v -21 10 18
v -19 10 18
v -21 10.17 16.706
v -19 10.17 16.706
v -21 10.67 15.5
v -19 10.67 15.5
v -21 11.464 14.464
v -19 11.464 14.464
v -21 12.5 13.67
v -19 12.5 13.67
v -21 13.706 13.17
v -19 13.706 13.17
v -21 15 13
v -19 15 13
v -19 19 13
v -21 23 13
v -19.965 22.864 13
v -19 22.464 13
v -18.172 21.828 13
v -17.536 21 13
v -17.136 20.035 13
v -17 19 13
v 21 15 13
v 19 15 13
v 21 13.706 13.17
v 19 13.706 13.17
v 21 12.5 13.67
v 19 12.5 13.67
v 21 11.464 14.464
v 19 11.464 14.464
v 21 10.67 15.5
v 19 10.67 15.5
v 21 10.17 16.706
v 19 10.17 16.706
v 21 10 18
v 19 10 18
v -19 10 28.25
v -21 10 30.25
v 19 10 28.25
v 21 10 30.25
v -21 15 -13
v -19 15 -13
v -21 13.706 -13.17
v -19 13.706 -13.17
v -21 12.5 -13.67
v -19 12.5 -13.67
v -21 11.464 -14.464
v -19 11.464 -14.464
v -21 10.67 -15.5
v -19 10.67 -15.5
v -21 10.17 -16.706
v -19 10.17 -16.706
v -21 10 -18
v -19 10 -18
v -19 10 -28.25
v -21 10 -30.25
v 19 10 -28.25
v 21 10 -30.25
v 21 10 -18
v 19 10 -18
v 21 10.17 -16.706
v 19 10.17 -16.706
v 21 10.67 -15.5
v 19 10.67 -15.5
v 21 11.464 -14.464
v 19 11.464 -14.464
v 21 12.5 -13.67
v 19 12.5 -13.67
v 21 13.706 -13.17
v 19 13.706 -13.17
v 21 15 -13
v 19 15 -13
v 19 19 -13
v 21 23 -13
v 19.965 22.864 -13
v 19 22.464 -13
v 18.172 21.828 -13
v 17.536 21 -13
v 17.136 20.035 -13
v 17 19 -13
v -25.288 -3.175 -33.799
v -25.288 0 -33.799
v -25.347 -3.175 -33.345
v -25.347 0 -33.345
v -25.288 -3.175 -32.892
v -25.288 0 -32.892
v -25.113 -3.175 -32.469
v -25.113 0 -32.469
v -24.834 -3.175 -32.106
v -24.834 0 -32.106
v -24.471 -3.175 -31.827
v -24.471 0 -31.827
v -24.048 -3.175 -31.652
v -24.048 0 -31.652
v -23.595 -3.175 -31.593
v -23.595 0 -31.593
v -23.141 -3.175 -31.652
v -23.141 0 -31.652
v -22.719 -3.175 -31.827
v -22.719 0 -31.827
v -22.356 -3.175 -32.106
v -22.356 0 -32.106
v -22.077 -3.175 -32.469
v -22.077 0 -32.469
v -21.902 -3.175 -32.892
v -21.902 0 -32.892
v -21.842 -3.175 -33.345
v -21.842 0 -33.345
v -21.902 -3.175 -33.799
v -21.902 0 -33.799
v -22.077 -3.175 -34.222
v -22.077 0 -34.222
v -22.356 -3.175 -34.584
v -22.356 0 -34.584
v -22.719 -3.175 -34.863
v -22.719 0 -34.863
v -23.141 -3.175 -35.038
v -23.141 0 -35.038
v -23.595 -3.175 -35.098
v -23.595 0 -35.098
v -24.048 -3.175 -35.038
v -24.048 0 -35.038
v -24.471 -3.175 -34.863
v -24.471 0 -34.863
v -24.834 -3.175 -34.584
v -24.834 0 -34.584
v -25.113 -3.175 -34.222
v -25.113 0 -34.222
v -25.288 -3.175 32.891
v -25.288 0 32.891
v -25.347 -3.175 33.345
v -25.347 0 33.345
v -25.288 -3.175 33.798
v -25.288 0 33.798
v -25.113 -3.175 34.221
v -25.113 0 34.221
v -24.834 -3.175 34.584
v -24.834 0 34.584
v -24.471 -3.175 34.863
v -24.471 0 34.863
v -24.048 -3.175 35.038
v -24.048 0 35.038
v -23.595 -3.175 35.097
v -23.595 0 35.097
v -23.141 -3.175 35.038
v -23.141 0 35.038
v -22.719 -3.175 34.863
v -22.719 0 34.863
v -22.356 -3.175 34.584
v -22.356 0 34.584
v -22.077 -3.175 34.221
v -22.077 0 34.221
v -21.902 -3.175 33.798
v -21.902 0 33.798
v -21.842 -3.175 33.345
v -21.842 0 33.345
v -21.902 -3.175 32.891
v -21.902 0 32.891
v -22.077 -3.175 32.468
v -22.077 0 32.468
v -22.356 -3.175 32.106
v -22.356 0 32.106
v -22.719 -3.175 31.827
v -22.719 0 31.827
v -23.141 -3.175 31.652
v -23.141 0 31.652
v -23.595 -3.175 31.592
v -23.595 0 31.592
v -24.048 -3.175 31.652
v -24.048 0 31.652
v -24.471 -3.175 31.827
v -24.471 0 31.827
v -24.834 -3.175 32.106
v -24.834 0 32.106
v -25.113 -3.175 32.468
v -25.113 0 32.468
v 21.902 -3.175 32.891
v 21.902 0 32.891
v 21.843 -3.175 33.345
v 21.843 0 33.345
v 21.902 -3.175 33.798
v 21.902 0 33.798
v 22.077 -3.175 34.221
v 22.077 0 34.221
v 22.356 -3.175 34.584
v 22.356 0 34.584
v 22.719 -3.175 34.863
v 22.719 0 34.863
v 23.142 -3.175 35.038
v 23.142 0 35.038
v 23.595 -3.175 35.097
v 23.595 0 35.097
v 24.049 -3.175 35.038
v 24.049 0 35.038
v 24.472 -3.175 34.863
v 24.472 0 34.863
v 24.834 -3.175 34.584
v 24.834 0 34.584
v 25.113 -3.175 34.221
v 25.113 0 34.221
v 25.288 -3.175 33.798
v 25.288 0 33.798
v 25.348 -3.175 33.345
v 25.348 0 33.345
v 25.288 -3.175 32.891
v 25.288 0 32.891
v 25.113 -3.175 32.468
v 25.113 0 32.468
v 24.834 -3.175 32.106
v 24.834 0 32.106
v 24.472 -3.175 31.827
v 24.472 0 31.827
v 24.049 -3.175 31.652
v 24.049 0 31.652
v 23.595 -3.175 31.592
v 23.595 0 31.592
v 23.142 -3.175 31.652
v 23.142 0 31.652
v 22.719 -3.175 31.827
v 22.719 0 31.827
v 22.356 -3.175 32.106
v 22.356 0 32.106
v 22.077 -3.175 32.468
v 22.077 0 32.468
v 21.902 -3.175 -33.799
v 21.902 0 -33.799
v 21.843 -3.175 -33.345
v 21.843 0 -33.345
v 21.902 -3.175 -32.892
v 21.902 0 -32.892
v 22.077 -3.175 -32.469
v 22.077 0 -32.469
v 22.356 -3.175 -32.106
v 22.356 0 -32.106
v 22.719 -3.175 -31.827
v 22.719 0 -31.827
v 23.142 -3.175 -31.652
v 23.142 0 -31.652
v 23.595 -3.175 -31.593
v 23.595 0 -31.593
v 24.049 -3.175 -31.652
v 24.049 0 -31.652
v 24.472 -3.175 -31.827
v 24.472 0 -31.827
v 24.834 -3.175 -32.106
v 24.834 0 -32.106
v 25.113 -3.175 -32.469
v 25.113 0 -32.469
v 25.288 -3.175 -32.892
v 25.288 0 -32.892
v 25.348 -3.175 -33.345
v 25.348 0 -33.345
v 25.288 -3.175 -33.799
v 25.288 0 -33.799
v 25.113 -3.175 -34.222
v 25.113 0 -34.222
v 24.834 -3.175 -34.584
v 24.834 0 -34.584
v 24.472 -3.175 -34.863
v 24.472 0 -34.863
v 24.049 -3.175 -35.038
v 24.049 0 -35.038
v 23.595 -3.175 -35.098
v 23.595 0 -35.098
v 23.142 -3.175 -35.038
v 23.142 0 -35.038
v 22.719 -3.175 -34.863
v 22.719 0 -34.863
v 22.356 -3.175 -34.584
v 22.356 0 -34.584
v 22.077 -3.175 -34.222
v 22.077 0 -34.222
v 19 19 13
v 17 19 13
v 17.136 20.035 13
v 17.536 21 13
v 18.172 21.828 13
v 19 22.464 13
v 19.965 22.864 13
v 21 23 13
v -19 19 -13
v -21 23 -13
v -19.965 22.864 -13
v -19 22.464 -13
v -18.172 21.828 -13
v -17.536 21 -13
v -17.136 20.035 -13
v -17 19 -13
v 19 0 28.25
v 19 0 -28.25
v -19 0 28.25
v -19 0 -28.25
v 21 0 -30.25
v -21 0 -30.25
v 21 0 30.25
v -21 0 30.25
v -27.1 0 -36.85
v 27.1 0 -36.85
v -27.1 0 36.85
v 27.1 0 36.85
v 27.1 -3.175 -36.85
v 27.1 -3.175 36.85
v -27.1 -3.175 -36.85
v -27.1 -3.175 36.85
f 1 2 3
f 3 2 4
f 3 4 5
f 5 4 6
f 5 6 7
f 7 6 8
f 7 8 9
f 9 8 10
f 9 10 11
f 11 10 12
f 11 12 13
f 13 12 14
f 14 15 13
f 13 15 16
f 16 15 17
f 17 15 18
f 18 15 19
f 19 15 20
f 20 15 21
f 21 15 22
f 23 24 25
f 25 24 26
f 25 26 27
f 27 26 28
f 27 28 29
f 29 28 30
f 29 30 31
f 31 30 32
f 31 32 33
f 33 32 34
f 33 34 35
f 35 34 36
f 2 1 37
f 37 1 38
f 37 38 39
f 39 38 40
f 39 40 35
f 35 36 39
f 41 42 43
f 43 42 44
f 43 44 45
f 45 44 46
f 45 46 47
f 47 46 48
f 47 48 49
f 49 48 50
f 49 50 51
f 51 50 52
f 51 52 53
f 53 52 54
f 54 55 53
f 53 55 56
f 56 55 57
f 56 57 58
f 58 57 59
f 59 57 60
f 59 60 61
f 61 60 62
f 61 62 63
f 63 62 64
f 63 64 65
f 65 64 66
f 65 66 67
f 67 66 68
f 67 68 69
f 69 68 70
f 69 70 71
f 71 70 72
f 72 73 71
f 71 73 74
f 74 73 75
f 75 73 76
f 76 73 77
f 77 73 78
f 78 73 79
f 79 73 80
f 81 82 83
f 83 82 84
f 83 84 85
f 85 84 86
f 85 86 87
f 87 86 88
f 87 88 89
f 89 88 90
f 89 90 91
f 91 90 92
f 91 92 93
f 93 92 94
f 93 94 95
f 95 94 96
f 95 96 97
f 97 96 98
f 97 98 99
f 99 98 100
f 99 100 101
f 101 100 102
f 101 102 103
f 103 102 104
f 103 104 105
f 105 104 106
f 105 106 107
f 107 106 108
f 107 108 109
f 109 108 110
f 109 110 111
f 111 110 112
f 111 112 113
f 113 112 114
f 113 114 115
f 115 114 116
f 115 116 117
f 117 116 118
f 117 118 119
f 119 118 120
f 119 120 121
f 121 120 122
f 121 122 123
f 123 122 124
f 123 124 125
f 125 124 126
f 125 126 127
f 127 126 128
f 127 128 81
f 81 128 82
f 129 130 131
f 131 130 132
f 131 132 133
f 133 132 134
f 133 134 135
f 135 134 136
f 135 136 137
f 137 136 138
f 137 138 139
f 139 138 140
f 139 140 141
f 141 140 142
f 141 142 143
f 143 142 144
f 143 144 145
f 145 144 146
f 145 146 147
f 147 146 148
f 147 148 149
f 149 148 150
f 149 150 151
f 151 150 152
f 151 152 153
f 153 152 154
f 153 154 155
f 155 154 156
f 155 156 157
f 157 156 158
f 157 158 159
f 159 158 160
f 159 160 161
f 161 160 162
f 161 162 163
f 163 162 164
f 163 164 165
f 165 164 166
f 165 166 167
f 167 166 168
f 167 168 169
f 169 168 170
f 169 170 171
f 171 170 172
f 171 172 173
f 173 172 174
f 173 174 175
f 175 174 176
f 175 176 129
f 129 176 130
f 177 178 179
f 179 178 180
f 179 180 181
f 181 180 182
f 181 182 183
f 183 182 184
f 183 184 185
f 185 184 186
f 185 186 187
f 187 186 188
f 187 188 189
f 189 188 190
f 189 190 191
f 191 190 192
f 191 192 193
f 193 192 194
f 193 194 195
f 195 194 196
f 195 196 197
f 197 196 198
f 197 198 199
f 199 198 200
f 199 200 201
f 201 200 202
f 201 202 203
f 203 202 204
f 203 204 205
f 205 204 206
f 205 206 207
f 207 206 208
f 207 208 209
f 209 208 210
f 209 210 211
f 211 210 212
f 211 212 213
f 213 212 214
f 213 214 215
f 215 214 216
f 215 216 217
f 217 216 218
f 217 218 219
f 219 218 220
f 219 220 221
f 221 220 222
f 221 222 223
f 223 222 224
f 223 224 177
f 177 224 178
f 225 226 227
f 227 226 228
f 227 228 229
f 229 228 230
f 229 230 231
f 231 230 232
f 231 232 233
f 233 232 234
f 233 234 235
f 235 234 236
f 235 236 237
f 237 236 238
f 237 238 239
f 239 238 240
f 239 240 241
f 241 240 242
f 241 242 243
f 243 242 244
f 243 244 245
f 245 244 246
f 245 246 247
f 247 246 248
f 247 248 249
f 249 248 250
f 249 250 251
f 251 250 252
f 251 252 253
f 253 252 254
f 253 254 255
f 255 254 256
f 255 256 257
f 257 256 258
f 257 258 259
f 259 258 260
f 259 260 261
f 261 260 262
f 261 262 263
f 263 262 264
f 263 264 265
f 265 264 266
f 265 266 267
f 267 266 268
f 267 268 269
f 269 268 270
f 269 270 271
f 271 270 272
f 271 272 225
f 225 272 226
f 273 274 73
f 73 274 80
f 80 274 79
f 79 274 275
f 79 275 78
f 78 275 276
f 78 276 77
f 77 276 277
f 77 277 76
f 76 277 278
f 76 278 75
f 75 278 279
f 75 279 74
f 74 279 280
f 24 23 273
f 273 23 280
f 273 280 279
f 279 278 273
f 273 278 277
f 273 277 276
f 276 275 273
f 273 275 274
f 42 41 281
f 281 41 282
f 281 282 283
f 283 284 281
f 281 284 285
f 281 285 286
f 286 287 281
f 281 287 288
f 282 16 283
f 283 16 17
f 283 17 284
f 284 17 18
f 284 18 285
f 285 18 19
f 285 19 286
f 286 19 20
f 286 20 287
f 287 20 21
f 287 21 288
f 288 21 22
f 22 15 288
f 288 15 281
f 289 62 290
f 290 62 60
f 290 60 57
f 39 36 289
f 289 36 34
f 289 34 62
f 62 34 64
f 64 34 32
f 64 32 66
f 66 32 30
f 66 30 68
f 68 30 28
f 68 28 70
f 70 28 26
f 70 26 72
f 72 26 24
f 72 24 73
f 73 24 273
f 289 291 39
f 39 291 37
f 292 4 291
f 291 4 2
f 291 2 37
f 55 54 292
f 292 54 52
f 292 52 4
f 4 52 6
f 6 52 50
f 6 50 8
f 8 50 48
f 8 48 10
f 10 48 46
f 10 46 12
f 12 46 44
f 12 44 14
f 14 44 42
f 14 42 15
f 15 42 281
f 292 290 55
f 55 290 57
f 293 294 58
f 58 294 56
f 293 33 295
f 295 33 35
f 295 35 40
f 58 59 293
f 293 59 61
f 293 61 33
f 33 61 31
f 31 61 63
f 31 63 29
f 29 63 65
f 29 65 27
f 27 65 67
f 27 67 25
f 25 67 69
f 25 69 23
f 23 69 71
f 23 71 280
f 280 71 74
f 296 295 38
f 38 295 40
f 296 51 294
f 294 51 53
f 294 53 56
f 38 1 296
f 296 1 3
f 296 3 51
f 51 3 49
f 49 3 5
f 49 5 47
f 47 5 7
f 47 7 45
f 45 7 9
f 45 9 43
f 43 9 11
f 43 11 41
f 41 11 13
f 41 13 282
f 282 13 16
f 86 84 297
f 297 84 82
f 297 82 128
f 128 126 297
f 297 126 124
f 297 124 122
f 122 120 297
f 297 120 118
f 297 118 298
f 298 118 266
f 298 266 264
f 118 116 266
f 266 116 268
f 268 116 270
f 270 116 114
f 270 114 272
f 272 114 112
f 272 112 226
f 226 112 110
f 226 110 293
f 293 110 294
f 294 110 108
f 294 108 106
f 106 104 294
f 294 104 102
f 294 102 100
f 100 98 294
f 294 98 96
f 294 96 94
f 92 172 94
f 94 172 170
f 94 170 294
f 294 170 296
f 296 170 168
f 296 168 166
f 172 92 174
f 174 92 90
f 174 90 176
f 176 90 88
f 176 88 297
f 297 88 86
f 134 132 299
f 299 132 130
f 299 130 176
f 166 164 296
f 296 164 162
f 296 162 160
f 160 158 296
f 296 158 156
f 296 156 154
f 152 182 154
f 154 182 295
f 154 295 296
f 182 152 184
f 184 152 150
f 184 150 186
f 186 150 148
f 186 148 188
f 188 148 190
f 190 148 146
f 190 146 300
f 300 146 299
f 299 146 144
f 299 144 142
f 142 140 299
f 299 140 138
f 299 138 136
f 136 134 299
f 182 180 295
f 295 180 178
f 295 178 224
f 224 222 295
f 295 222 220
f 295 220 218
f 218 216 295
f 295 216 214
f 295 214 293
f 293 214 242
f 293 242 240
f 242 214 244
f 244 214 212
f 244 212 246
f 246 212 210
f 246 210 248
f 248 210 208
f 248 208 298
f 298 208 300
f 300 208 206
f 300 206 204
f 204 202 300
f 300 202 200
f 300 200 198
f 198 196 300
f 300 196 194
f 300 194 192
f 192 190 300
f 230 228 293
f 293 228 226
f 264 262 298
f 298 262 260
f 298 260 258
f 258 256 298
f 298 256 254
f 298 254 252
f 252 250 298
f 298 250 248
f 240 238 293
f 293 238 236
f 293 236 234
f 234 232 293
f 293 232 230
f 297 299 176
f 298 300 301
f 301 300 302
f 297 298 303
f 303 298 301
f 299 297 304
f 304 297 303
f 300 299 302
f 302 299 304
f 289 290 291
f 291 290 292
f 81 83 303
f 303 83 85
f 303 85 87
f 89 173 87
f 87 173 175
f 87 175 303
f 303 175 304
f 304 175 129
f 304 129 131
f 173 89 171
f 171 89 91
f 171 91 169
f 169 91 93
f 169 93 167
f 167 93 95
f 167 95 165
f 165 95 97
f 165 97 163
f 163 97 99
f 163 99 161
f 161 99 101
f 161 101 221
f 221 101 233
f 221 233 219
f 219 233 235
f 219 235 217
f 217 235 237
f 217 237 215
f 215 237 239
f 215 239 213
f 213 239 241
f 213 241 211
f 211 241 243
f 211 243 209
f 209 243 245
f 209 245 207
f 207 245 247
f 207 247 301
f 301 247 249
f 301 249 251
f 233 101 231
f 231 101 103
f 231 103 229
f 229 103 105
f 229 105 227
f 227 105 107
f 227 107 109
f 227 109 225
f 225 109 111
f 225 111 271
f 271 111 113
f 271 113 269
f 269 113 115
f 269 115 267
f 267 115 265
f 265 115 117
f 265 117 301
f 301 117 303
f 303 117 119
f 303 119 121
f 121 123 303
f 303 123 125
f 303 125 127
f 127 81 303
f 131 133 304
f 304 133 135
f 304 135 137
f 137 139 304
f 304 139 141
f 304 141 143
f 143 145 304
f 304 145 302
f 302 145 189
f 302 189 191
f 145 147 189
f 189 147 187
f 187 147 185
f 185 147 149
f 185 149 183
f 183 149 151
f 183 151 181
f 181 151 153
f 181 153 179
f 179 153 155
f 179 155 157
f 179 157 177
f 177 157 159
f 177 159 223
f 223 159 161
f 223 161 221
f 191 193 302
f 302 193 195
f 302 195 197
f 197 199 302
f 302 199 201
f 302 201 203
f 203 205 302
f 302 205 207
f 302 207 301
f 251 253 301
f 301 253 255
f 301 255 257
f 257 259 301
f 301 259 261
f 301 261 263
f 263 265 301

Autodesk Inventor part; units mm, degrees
ref_plane "YZ Plane" through (0, 0, 0) normal (1, 0, 0) x (0, 1, 0)
ref_plane "XZ Plane" through (0, 0, 0) normal (0, 1, 0) x (-1, 0, 0)
ref_plane "XY Plane" through (0, 0, 0) normal (0, 0, 1) x (1, 0, 0)
sketch "Sketch1" plane through (0, 0, 0) normal (0, 1, 0) x (-1, 0, 0)
  line L0 (27.1, 36.85) -> (-27.1, 36.85)
  line L1 (-27.1, 36.85) -> (-27.1, -36.85)
  line L2 (-27.1, -36.85) -> (27.1, -36.85)
  line L3 (27.1, -36.85) -> (27.1, 36.85)
  line L4 (37.94, 0) -> (-37.94, 0) projected
  line L5 (0, -51.59) -> (0, 51.59) projected
  circle A0 centre (23.5948, 33.3448) radius 1.7526
  circle A1 centre (-23.5952, 33.3448) radius 1.7526
  circle A2 centre (23.5948, -33.3452) radius 1.7526
  circle A3 centre (-23.5952, -33.3452) radius 1.7526
  point P0 (0, 0)
  dimension "d0" = 54.2
  dimension "d1" = 73.7
  dimension "d16" = 3.5052
  dimension "d17" = 3.5052
  dimension "d18" = 3.5052
  dimension "d21" = 47.19
  dimension "d24" = 66.69
extrude "baseplate" add sketch "Sketch1" against normal blind 3.175 contours L3 L4 L5 L0 | L5 L4 L1 L0 | L3 L2 L5 L4 | L5 L2 L1 L4 | A0 | A1 | A2 | A3
sketch "Sketch2" plane through (0, 0, 0) normal (0, 1, 0) x (1, 0, 0)
  line L0 (19, 28.25) -> (-19, 28.25)
  line L1 (-19, 28.25) -> (-19, -28.25)
  line L2 (-19, -28.25) -> (19, -28.25)
  line L3 (19, -28.25) -> (19, 28.25)
  line L4 (-37.94, 0) -> (37.94, 0) projected
  line L5 (0, 51.59) -> (0, -51.59) projected
  line L6 (-21, -30.25) -> (-21, 30.25)
  line L7 (-21, 30.25) -> (21, 30.25)
  line L8 (21, 30.25) -> (21, -30.25)
  line L9 (21, -30.25) -> (-21, -30.25)
  dimension "d4" = 38
  dimension "d5" = 56.5
  dimension "d6" = 2
extrude "perimeter" add sketch "Sketch2" along normal blind 10 contours L0 L5 L7 L8 L4 L3 | L0 L1 L4 L6 L7 L5 | L4 L8 L9 L5 L2 L3 | L1 L2 L5 L9 L6 L4
ref_plane "Work Plane1" through (-27.1, 0, 0) normal (0, 0, 1) x (1, 0, 0)
sketch "Sketch3" plane through (-27.1, 0, 0) normal (0, 0, 1) x (1, 0, 0)
  line L0 (48.1, 10) -> (46.1, 10)
  line L1 (46.1, 10) -> (46.1, 19)
  line L2 (46.1, 19) -> (44.1, 19)
  line L3 (48.1, 10) -> (48.1, 23)
  arc A0 (48.1, 23) -> (44.1, 19) centre (48.1, 19) ccw
  line L4 (27.1, 0) -> (27.1, 45.1965)
  line L5 (6.1, 10) -> (8.1, 10)
  line L6 (8.1, 10) -> (8.1, 19)
  line L7 (8.1, 19) -> (10.1, 19)
  line L8 (6.1, 10) -> (6.1, 23)
  arc A1 (10.1, 19) -> (6.1, 23) centre (6.1, 19) ccw
  dimension "d10" = 2
  dimension "d11" = 2
  dimension "d12" = 9
  dimension "d13" = 13
extrude "holders" add sketch "Sketch3" along normal mid plane 26
extrude "Extrusion4" cut sketch "Sketch1" against normal blind 10 contours A0 | A1 | A2 | A3
fillet "Fillet1" radius 5 4 edges at (20, 10, -13) (-20, 10, -13) (20, 10, 13) (-20, 10, 13)
properties part number "esc_holder"
